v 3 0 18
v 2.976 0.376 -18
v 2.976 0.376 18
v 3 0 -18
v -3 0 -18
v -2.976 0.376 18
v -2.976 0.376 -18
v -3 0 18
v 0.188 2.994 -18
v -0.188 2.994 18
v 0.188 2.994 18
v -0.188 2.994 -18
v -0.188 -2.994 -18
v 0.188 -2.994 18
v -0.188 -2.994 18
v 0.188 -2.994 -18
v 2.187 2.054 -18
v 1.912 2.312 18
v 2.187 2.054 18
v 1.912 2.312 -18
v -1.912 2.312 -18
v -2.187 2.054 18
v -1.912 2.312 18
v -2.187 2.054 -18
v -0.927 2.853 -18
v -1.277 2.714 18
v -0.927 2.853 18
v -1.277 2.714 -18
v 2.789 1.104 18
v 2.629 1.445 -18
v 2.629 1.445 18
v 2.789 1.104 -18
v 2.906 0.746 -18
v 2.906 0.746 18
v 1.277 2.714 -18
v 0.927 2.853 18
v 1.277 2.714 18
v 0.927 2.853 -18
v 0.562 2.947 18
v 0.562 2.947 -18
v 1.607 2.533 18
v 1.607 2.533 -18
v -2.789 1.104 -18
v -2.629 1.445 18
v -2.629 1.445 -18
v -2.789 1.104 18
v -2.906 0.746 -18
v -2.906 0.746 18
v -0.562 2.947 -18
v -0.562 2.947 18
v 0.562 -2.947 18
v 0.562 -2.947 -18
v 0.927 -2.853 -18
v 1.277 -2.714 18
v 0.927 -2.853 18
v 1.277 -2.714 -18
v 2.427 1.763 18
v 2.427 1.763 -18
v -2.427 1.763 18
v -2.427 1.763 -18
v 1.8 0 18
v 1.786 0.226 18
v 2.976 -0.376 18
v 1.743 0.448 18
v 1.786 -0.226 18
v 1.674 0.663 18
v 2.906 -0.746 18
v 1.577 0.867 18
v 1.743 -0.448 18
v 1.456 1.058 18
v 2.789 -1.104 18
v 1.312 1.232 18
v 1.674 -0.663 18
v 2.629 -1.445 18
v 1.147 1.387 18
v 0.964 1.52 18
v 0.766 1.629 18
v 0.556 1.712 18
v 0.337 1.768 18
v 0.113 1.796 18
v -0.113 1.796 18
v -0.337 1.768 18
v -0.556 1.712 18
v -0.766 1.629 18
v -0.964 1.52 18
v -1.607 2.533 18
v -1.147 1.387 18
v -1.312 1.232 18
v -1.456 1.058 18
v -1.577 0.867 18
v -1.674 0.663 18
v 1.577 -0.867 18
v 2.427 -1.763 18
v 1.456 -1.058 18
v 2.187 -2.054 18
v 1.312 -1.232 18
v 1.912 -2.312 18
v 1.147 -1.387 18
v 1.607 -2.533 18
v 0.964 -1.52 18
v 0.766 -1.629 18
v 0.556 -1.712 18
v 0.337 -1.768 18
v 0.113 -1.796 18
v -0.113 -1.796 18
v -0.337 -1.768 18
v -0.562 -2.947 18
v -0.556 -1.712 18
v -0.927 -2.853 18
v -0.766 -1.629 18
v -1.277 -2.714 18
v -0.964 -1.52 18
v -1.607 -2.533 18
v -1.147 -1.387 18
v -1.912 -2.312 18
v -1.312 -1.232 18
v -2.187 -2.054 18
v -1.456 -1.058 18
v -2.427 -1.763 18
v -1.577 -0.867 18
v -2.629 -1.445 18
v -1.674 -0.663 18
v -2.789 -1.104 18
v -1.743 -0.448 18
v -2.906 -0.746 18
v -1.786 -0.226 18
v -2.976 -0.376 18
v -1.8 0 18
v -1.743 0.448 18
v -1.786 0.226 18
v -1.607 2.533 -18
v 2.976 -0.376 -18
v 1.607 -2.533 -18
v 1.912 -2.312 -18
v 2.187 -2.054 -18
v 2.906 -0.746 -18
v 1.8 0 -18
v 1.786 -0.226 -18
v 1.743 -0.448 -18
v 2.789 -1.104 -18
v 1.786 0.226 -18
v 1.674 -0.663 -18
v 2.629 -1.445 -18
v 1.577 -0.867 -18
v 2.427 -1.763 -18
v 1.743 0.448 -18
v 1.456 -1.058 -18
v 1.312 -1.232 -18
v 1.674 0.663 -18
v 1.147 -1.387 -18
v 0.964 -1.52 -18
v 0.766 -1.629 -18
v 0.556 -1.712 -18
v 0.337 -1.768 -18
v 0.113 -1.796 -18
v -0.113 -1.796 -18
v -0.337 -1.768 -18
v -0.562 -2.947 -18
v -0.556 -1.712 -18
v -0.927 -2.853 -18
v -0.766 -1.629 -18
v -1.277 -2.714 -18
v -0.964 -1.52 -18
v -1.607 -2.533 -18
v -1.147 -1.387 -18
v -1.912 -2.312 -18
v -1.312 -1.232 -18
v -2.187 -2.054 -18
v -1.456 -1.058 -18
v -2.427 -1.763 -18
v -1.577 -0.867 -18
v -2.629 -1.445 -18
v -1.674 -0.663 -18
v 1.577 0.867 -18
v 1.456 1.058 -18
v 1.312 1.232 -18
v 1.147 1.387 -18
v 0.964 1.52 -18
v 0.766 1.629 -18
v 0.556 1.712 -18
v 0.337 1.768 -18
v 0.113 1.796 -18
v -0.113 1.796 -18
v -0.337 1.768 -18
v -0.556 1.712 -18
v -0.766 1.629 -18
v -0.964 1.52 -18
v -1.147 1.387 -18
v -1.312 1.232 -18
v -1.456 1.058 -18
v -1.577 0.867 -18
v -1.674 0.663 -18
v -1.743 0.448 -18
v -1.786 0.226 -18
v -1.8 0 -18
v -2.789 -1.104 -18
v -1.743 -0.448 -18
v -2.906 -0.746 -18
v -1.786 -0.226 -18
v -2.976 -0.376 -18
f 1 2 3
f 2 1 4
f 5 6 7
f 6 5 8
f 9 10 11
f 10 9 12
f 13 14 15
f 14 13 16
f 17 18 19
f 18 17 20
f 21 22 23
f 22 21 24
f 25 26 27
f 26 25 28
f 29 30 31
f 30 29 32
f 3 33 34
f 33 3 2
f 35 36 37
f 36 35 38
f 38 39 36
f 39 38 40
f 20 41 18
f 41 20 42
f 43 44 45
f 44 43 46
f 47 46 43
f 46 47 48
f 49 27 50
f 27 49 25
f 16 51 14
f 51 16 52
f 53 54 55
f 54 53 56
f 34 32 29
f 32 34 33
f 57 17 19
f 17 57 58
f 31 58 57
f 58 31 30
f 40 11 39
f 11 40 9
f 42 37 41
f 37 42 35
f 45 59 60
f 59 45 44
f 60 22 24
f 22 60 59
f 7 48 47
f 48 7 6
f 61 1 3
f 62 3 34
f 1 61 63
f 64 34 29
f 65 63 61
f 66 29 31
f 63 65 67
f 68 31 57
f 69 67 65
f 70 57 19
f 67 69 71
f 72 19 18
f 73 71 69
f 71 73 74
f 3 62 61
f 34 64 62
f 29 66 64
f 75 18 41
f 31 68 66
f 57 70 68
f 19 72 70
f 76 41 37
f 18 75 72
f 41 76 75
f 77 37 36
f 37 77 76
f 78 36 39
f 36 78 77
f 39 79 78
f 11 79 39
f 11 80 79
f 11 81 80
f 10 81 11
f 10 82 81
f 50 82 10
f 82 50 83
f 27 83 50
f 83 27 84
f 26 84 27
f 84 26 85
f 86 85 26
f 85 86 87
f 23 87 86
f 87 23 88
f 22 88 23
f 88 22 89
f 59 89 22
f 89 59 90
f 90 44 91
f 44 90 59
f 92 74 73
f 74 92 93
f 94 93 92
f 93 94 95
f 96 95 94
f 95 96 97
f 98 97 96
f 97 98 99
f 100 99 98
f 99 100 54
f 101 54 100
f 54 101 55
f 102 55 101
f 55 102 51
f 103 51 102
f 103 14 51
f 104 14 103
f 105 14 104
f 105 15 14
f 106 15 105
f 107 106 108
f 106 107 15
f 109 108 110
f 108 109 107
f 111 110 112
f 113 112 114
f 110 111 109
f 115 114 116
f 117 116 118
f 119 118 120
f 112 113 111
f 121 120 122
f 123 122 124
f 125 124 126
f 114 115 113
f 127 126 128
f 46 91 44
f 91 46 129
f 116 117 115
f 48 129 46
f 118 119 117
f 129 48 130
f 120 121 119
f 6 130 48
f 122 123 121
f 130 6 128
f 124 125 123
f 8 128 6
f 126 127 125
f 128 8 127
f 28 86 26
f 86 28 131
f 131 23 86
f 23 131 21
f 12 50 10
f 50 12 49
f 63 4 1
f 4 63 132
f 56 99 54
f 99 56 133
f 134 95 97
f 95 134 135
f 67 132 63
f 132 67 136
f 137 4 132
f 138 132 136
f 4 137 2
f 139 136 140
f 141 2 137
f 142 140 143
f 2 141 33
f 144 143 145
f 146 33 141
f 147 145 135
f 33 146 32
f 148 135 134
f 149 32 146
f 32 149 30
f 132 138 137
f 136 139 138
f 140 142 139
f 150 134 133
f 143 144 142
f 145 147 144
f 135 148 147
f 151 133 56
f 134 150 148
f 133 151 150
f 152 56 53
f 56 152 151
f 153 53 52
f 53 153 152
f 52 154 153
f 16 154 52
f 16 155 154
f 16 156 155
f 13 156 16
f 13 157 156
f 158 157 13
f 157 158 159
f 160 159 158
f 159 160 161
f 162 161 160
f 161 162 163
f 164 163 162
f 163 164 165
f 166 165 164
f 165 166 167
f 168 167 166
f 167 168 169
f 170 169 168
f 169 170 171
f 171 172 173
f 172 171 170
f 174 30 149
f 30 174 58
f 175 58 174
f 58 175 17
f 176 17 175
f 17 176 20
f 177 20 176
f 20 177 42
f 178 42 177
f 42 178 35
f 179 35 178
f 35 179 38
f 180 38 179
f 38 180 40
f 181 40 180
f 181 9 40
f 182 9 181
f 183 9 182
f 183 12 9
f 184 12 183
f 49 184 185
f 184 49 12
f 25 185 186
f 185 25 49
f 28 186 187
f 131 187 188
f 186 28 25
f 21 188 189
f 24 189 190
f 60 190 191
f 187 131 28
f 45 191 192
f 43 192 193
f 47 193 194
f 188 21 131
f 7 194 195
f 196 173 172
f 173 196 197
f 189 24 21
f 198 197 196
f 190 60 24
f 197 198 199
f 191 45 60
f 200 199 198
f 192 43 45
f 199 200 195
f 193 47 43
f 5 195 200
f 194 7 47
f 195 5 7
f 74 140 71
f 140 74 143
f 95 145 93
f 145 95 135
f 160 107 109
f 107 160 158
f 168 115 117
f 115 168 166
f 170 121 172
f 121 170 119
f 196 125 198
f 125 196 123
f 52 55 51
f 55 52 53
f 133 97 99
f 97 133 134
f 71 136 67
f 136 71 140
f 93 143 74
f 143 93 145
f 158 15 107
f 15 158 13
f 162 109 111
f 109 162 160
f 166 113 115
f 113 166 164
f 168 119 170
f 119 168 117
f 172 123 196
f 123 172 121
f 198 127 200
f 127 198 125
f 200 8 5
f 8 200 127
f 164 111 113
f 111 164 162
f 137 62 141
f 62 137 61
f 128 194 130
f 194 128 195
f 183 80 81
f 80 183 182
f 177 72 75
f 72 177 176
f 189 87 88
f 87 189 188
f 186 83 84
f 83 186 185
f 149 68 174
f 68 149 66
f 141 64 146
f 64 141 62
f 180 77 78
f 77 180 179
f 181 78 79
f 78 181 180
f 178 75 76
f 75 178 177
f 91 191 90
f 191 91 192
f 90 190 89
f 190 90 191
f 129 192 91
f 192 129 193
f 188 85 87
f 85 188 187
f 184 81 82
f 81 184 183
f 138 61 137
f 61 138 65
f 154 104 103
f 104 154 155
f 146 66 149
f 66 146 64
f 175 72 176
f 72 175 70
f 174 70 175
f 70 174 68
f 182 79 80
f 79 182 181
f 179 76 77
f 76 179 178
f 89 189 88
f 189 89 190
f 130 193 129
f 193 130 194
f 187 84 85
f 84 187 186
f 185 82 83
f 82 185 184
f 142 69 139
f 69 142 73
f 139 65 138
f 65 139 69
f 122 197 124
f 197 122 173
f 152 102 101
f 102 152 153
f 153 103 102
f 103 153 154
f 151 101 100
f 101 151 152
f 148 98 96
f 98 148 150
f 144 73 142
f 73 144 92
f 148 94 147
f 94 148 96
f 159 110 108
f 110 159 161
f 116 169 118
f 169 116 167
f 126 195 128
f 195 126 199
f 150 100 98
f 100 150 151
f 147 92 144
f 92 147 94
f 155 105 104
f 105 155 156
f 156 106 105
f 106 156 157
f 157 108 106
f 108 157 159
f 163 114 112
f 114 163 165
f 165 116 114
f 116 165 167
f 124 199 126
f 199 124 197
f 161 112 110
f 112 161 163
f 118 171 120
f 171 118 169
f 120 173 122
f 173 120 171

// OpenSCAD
$fn = 50;


difference() {
	union() {
		translate(v = [0, 0, -18.0000000000]) {
			cylinder(h = 36, r = 3.0000000000);
		}
	}
	union() {
		translate(v = [0, 0, -100.0000000000]) {
			cylinder(h = 200, r = 1.8000000000);
		}
	}
}
